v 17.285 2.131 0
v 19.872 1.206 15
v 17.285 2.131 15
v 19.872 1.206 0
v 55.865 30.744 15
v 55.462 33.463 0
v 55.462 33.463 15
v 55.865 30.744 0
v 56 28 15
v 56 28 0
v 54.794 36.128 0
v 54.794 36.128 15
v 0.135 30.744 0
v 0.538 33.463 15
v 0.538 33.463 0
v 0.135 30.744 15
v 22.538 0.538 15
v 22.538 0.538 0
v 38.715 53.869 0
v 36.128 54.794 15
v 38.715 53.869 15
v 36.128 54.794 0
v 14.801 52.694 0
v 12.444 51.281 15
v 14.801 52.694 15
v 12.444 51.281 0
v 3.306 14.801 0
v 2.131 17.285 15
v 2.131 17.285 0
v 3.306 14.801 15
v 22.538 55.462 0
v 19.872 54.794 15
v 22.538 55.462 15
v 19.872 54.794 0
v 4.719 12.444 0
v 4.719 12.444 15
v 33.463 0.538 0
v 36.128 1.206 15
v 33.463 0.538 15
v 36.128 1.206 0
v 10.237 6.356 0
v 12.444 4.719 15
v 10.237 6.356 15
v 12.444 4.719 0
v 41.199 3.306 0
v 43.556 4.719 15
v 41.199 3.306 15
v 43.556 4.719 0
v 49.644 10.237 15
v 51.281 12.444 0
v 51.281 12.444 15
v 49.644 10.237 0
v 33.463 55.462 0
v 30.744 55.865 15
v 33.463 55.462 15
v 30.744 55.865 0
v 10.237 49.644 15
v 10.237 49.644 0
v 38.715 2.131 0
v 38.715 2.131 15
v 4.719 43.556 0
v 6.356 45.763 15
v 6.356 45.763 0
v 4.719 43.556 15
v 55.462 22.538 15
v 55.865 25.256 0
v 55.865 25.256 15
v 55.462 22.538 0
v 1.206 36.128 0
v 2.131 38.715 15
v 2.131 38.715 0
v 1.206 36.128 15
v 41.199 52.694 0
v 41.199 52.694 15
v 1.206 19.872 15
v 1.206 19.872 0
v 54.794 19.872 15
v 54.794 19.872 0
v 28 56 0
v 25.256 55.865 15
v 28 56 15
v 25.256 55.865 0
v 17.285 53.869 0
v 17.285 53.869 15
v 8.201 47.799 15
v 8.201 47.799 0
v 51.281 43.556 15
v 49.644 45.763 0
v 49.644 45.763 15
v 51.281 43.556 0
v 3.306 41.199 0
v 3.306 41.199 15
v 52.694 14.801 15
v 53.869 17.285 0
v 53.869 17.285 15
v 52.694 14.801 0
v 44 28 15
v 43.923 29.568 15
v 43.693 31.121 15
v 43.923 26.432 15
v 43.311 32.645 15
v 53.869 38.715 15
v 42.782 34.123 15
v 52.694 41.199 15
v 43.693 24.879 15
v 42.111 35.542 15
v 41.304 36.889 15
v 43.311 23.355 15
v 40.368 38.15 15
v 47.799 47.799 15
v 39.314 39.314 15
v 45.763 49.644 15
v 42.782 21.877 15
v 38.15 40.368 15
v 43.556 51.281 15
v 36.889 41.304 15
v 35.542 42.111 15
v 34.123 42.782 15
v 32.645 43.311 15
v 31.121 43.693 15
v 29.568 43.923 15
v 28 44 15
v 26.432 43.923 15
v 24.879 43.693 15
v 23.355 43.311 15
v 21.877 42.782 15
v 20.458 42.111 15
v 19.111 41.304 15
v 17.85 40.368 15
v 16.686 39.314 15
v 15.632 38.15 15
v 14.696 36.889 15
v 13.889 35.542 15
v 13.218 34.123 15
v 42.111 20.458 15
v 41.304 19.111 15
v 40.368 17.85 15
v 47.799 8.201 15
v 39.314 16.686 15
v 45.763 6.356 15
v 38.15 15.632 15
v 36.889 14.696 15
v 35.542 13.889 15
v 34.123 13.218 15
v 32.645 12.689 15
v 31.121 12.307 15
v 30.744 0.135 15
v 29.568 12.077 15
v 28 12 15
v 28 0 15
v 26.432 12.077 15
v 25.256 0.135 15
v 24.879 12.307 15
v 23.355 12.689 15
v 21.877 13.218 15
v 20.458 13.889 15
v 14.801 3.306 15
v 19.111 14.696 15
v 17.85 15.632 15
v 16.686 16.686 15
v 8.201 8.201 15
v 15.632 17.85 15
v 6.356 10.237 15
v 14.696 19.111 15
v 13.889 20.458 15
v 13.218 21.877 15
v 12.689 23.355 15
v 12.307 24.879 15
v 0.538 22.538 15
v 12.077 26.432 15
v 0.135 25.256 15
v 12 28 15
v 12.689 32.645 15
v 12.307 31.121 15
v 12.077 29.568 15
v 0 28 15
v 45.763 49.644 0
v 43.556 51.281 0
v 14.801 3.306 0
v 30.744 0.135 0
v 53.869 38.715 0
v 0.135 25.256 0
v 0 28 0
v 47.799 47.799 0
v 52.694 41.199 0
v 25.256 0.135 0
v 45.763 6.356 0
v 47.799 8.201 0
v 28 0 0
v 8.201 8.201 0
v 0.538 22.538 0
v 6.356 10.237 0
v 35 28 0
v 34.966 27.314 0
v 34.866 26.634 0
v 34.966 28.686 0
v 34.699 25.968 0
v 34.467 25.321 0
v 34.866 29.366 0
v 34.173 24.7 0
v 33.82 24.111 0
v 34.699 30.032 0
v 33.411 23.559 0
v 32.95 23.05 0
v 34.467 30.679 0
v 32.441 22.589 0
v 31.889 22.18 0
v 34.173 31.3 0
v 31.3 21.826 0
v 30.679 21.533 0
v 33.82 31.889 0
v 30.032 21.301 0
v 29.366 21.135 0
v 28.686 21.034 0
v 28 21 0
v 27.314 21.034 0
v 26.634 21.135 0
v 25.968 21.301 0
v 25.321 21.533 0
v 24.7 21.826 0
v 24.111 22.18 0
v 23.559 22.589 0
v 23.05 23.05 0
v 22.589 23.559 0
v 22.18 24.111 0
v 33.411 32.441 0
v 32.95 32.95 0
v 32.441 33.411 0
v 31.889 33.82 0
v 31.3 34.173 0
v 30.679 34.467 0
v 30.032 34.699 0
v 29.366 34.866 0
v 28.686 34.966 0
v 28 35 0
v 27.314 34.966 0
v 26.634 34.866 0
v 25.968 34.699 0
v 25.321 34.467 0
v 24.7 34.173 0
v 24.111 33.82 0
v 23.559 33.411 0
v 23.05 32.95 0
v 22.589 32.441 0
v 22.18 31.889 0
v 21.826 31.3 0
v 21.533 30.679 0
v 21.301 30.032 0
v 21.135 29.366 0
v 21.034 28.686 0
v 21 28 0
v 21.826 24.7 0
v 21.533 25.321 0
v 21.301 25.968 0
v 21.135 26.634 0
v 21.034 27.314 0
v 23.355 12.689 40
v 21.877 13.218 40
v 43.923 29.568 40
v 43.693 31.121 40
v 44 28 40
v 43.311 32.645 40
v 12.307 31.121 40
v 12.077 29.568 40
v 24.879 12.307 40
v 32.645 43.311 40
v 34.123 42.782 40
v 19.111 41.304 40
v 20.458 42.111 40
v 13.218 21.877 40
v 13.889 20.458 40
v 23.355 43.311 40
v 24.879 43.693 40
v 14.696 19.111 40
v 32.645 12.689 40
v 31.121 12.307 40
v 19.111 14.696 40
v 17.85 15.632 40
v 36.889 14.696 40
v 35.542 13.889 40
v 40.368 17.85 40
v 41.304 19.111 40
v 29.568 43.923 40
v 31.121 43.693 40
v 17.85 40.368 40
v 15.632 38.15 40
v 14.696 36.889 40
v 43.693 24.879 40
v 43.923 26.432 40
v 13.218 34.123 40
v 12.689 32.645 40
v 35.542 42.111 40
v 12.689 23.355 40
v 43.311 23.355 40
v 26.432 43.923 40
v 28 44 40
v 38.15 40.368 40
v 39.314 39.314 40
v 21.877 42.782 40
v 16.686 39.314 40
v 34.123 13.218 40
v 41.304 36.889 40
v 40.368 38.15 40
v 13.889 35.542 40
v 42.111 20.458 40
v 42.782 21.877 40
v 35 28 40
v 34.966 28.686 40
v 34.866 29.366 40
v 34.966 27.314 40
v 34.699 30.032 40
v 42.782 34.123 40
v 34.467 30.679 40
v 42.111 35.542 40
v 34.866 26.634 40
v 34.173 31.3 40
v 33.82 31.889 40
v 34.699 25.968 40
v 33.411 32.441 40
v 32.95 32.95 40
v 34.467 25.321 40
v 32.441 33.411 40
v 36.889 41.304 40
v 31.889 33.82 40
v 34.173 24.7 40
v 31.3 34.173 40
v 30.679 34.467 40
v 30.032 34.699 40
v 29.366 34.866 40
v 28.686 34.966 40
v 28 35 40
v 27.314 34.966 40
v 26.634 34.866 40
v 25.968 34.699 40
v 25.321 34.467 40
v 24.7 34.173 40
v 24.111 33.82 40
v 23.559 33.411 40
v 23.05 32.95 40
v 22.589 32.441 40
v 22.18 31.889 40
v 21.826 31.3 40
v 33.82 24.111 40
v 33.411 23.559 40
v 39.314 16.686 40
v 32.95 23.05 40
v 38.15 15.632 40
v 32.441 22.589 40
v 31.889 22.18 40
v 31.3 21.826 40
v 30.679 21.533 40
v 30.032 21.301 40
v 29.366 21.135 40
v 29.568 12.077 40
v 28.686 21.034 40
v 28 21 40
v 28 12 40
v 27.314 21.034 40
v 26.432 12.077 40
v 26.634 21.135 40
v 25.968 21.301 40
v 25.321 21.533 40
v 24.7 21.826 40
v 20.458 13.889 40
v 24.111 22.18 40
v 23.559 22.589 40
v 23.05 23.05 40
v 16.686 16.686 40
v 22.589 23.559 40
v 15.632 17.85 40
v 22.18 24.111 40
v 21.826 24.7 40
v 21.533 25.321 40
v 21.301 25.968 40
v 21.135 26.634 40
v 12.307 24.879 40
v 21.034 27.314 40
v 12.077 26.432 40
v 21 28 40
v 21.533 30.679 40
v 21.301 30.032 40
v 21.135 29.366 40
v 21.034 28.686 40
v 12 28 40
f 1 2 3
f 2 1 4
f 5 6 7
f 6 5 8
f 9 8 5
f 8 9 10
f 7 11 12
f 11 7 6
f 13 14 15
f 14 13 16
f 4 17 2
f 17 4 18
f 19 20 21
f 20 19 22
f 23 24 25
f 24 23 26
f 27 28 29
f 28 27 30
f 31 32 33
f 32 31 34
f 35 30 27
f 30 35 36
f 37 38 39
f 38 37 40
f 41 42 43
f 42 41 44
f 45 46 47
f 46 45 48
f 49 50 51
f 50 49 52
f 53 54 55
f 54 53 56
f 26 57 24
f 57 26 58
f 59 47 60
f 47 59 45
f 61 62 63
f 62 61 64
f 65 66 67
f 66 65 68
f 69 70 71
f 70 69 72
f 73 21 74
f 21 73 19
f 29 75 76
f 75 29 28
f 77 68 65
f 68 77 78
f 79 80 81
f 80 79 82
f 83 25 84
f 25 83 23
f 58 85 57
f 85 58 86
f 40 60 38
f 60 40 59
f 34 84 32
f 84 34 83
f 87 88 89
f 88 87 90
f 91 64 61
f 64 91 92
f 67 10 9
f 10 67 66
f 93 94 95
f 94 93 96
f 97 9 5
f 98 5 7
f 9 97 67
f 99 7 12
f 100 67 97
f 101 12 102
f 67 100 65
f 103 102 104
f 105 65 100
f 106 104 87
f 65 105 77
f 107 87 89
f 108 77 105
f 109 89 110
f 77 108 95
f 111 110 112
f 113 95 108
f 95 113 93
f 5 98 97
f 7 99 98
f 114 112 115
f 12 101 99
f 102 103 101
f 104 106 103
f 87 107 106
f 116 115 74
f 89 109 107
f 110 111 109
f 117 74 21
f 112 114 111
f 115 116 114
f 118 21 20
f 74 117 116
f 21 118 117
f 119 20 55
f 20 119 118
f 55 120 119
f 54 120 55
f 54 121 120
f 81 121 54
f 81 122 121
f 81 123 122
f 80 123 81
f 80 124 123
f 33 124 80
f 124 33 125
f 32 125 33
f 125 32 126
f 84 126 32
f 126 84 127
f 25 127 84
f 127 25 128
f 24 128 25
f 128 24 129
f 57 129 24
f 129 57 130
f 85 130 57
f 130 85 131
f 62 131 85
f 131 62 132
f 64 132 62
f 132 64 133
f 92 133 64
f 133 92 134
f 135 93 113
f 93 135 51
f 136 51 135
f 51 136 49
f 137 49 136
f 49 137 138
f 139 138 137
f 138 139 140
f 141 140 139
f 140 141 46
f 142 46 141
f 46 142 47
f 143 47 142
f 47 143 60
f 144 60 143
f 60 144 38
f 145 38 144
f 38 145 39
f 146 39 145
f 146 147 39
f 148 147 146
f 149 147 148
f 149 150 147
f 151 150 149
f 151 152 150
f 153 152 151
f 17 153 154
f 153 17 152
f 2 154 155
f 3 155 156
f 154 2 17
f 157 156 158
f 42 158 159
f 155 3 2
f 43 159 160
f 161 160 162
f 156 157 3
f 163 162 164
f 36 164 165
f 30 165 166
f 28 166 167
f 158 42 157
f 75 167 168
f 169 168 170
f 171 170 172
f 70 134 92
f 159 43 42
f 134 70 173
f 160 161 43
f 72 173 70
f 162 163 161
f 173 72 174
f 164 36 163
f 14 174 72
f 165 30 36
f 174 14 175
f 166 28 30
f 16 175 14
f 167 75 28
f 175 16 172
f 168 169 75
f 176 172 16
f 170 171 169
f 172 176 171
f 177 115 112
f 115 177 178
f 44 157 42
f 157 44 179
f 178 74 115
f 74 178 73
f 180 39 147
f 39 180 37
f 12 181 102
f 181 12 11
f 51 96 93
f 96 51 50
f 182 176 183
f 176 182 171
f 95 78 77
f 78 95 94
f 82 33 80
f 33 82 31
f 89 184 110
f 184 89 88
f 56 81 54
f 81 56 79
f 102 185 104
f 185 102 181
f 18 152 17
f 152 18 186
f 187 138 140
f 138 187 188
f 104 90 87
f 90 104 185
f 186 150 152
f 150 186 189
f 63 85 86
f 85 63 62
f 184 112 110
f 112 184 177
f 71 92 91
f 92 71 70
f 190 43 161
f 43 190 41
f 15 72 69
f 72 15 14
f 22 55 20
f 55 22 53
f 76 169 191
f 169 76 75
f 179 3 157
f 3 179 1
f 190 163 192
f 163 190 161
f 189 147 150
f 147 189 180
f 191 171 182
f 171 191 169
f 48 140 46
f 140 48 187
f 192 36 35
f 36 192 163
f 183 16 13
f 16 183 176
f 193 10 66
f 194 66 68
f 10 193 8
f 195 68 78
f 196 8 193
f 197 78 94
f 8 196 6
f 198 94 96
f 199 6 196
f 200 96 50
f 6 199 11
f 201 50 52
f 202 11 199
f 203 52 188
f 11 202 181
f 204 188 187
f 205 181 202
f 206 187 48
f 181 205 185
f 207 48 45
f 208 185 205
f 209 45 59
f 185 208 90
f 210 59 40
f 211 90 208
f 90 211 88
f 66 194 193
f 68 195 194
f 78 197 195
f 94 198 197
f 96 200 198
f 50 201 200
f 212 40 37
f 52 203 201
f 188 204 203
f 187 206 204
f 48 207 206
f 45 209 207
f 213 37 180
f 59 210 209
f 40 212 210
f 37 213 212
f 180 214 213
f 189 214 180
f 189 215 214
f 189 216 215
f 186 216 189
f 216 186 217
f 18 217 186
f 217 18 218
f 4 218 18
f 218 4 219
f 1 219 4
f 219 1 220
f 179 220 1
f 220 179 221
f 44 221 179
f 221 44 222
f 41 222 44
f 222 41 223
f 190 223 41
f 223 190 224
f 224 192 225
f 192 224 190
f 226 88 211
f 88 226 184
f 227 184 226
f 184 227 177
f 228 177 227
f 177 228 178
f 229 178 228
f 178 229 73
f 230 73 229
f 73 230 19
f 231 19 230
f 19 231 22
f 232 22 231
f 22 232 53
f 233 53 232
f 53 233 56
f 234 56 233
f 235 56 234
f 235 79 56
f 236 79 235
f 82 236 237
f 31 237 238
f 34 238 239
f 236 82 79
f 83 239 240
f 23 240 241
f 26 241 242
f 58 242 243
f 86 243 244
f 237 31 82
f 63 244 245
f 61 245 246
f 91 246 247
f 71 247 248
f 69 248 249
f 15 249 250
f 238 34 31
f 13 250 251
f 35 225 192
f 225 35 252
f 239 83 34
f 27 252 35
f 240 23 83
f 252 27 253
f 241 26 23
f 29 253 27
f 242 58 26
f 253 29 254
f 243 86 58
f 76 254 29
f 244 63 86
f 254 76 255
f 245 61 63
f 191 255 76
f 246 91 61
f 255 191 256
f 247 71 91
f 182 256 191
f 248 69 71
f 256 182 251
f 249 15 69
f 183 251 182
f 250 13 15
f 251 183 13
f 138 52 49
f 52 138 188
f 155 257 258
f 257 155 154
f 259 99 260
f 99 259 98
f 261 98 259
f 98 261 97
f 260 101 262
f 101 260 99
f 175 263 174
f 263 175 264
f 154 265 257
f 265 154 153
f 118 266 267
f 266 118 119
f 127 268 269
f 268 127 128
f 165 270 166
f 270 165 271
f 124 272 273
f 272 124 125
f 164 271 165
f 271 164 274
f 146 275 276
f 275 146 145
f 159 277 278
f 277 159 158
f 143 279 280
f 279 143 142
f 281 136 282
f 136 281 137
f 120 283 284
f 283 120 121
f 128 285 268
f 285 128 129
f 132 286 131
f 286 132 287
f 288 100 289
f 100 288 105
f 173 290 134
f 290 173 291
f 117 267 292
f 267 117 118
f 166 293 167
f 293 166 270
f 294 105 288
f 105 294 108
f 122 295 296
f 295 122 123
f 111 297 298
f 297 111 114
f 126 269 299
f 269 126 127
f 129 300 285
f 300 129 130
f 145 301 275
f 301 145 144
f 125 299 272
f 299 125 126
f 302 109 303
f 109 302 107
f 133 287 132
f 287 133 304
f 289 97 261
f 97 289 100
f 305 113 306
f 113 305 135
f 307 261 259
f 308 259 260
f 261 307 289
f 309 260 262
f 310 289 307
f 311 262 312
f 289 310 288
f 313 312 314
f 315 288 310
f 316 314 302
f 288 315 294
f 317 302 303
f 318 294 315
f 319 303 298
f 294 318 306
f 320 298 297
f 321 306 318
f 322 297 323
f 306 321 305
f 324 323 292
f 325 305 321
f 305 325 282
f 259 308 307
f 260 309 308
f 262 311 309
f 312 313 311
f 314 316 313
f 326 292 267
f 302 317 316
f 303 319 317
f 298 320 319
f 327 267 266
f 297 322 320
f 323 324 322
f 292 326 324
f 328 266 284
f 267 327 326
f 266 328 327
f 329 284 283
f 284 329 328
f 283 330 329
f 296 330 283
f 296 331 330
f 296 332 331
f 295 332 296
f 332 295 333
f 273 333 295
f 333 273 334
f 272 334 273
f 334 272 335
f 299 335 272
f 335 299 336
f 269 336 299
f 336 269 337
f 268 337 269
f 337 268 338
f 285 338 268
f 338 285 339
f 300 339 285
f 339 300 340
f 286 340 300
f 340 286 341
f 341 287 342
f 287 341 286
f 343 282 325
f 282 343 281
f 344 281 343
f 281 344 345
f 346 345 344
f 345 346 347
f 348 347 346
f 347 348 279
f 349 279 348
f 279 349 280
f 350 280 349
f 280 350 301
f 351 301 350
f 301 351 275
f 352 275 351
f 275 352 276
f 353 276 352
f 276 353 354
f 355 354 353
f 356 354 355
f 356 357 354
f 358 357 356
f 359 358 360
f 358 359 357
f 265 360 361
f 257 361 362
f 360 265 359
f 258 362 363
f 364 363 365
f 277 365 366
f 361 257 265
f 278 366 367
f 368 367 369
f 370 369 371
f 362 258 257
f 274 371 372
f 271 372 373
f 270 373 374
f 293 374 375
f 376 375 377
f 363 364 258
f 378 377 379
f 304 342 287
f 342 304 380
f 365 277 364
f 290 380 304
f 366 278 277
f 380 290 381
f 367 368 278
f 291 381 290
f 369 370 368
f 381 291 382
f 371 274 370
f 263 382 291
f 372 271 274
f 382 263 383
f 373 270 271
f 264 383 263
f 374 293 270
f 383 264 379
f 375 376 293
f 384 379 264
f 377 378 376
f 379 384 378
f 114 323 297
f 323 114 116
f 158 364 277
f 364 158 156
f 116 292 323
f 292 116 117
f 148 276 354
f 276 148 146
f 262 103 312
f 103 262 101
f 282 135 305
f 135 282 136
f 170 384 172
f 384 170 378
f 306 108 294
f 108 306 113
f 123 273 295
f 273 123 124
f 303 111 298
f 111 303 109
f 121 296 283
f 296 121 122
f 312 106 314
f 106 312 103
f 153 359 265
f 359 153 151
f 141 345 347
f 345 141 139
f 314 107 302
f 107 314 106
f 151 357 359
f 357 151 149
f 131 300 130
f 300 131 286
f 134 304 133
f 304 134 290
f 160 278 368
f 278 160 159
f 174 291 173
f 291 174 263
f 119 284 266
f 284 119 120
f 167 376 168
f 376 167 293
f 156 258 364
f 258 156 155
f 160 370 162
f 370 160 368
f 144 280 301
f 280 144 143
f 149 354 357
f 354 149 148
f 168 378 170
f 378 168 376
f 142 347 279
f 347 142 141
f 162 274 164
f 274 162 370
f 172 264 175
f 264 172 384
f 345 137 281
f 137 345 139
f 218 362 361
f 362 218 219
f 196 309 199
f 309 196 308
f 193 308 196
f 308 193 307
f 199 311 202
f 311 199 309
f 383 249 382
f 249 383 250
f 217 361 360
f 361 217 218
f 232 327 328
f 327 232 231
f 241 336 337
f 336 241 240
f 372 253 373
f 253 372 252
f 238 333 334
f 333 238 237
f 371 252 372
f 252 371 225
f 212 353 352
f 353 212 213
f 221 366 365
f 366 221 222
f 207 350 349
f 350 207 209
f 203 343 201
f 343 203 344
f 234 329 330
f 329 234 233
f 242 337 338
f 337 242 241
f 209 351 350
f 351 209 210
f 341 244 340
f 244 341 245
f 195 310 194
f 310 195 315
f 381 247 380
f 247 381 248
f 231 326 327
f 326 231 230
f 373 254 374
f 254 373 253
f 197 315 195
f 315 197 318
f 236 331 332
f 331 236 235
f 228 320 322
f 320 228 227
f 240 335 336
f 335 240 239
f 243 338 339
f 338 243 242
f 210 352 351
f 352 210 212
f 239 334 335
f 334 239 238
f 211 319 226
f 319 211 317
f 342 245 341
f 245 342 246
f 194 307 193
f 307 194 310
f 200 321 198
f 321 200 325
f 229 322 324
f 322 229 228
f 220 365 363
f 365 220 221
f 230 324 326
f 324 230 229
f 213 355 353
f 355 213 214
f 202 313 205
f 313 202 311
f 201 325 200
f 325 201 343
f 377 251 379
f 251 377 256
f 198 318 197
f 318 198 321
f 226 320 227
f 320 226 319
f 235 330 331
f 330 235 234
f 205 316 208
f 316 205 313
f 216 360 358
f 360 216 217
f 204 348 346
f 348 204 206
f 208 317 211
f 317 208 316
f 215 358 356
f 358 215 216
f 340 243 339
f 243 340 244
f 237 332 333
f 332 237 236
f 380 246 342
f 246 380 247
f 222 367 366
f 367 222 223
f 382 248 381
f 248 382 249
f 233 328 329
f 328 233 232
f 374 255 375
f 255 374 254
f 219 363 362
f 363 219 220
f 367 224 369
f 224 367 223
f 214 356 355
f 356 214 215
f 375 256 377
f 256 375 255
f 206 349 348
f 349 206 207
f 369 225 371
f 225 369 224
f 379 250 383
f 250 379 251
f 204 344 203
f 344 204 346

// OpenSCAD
// 雙層圓柱（cylstack）— 由 ortho_lib_work/objects.py 產生，請改 objects.py 後重建
// 下層圓柱直徑 56、高 15；上層同軸圓柱直徑 32、高 25；中心有直徑 14 的貫穿孔。
difference() {
  union() {
    multmatrix([[1,0,0,0],[0,1,0,0],[0,0,1,0],[0,0,0,1]]) translate([28,28,0]) cylinder(h=15, r=28, $fn=64);
    multmatrix([[1,0,0,0],[0,1,0,0],[0,0,1,15],[0,0,0,1]]) translate([28,28,0]) cylinder(h=25, r=16, $fn=64);
  }
  union() {
    multmatrix([[1,0,0,0],[0,1,0,0],[0,0,1,-1],[0,0,0,1]]) translate([28,28,0]) cylinder(h=42, r=7, $fn=64);
  }
}
